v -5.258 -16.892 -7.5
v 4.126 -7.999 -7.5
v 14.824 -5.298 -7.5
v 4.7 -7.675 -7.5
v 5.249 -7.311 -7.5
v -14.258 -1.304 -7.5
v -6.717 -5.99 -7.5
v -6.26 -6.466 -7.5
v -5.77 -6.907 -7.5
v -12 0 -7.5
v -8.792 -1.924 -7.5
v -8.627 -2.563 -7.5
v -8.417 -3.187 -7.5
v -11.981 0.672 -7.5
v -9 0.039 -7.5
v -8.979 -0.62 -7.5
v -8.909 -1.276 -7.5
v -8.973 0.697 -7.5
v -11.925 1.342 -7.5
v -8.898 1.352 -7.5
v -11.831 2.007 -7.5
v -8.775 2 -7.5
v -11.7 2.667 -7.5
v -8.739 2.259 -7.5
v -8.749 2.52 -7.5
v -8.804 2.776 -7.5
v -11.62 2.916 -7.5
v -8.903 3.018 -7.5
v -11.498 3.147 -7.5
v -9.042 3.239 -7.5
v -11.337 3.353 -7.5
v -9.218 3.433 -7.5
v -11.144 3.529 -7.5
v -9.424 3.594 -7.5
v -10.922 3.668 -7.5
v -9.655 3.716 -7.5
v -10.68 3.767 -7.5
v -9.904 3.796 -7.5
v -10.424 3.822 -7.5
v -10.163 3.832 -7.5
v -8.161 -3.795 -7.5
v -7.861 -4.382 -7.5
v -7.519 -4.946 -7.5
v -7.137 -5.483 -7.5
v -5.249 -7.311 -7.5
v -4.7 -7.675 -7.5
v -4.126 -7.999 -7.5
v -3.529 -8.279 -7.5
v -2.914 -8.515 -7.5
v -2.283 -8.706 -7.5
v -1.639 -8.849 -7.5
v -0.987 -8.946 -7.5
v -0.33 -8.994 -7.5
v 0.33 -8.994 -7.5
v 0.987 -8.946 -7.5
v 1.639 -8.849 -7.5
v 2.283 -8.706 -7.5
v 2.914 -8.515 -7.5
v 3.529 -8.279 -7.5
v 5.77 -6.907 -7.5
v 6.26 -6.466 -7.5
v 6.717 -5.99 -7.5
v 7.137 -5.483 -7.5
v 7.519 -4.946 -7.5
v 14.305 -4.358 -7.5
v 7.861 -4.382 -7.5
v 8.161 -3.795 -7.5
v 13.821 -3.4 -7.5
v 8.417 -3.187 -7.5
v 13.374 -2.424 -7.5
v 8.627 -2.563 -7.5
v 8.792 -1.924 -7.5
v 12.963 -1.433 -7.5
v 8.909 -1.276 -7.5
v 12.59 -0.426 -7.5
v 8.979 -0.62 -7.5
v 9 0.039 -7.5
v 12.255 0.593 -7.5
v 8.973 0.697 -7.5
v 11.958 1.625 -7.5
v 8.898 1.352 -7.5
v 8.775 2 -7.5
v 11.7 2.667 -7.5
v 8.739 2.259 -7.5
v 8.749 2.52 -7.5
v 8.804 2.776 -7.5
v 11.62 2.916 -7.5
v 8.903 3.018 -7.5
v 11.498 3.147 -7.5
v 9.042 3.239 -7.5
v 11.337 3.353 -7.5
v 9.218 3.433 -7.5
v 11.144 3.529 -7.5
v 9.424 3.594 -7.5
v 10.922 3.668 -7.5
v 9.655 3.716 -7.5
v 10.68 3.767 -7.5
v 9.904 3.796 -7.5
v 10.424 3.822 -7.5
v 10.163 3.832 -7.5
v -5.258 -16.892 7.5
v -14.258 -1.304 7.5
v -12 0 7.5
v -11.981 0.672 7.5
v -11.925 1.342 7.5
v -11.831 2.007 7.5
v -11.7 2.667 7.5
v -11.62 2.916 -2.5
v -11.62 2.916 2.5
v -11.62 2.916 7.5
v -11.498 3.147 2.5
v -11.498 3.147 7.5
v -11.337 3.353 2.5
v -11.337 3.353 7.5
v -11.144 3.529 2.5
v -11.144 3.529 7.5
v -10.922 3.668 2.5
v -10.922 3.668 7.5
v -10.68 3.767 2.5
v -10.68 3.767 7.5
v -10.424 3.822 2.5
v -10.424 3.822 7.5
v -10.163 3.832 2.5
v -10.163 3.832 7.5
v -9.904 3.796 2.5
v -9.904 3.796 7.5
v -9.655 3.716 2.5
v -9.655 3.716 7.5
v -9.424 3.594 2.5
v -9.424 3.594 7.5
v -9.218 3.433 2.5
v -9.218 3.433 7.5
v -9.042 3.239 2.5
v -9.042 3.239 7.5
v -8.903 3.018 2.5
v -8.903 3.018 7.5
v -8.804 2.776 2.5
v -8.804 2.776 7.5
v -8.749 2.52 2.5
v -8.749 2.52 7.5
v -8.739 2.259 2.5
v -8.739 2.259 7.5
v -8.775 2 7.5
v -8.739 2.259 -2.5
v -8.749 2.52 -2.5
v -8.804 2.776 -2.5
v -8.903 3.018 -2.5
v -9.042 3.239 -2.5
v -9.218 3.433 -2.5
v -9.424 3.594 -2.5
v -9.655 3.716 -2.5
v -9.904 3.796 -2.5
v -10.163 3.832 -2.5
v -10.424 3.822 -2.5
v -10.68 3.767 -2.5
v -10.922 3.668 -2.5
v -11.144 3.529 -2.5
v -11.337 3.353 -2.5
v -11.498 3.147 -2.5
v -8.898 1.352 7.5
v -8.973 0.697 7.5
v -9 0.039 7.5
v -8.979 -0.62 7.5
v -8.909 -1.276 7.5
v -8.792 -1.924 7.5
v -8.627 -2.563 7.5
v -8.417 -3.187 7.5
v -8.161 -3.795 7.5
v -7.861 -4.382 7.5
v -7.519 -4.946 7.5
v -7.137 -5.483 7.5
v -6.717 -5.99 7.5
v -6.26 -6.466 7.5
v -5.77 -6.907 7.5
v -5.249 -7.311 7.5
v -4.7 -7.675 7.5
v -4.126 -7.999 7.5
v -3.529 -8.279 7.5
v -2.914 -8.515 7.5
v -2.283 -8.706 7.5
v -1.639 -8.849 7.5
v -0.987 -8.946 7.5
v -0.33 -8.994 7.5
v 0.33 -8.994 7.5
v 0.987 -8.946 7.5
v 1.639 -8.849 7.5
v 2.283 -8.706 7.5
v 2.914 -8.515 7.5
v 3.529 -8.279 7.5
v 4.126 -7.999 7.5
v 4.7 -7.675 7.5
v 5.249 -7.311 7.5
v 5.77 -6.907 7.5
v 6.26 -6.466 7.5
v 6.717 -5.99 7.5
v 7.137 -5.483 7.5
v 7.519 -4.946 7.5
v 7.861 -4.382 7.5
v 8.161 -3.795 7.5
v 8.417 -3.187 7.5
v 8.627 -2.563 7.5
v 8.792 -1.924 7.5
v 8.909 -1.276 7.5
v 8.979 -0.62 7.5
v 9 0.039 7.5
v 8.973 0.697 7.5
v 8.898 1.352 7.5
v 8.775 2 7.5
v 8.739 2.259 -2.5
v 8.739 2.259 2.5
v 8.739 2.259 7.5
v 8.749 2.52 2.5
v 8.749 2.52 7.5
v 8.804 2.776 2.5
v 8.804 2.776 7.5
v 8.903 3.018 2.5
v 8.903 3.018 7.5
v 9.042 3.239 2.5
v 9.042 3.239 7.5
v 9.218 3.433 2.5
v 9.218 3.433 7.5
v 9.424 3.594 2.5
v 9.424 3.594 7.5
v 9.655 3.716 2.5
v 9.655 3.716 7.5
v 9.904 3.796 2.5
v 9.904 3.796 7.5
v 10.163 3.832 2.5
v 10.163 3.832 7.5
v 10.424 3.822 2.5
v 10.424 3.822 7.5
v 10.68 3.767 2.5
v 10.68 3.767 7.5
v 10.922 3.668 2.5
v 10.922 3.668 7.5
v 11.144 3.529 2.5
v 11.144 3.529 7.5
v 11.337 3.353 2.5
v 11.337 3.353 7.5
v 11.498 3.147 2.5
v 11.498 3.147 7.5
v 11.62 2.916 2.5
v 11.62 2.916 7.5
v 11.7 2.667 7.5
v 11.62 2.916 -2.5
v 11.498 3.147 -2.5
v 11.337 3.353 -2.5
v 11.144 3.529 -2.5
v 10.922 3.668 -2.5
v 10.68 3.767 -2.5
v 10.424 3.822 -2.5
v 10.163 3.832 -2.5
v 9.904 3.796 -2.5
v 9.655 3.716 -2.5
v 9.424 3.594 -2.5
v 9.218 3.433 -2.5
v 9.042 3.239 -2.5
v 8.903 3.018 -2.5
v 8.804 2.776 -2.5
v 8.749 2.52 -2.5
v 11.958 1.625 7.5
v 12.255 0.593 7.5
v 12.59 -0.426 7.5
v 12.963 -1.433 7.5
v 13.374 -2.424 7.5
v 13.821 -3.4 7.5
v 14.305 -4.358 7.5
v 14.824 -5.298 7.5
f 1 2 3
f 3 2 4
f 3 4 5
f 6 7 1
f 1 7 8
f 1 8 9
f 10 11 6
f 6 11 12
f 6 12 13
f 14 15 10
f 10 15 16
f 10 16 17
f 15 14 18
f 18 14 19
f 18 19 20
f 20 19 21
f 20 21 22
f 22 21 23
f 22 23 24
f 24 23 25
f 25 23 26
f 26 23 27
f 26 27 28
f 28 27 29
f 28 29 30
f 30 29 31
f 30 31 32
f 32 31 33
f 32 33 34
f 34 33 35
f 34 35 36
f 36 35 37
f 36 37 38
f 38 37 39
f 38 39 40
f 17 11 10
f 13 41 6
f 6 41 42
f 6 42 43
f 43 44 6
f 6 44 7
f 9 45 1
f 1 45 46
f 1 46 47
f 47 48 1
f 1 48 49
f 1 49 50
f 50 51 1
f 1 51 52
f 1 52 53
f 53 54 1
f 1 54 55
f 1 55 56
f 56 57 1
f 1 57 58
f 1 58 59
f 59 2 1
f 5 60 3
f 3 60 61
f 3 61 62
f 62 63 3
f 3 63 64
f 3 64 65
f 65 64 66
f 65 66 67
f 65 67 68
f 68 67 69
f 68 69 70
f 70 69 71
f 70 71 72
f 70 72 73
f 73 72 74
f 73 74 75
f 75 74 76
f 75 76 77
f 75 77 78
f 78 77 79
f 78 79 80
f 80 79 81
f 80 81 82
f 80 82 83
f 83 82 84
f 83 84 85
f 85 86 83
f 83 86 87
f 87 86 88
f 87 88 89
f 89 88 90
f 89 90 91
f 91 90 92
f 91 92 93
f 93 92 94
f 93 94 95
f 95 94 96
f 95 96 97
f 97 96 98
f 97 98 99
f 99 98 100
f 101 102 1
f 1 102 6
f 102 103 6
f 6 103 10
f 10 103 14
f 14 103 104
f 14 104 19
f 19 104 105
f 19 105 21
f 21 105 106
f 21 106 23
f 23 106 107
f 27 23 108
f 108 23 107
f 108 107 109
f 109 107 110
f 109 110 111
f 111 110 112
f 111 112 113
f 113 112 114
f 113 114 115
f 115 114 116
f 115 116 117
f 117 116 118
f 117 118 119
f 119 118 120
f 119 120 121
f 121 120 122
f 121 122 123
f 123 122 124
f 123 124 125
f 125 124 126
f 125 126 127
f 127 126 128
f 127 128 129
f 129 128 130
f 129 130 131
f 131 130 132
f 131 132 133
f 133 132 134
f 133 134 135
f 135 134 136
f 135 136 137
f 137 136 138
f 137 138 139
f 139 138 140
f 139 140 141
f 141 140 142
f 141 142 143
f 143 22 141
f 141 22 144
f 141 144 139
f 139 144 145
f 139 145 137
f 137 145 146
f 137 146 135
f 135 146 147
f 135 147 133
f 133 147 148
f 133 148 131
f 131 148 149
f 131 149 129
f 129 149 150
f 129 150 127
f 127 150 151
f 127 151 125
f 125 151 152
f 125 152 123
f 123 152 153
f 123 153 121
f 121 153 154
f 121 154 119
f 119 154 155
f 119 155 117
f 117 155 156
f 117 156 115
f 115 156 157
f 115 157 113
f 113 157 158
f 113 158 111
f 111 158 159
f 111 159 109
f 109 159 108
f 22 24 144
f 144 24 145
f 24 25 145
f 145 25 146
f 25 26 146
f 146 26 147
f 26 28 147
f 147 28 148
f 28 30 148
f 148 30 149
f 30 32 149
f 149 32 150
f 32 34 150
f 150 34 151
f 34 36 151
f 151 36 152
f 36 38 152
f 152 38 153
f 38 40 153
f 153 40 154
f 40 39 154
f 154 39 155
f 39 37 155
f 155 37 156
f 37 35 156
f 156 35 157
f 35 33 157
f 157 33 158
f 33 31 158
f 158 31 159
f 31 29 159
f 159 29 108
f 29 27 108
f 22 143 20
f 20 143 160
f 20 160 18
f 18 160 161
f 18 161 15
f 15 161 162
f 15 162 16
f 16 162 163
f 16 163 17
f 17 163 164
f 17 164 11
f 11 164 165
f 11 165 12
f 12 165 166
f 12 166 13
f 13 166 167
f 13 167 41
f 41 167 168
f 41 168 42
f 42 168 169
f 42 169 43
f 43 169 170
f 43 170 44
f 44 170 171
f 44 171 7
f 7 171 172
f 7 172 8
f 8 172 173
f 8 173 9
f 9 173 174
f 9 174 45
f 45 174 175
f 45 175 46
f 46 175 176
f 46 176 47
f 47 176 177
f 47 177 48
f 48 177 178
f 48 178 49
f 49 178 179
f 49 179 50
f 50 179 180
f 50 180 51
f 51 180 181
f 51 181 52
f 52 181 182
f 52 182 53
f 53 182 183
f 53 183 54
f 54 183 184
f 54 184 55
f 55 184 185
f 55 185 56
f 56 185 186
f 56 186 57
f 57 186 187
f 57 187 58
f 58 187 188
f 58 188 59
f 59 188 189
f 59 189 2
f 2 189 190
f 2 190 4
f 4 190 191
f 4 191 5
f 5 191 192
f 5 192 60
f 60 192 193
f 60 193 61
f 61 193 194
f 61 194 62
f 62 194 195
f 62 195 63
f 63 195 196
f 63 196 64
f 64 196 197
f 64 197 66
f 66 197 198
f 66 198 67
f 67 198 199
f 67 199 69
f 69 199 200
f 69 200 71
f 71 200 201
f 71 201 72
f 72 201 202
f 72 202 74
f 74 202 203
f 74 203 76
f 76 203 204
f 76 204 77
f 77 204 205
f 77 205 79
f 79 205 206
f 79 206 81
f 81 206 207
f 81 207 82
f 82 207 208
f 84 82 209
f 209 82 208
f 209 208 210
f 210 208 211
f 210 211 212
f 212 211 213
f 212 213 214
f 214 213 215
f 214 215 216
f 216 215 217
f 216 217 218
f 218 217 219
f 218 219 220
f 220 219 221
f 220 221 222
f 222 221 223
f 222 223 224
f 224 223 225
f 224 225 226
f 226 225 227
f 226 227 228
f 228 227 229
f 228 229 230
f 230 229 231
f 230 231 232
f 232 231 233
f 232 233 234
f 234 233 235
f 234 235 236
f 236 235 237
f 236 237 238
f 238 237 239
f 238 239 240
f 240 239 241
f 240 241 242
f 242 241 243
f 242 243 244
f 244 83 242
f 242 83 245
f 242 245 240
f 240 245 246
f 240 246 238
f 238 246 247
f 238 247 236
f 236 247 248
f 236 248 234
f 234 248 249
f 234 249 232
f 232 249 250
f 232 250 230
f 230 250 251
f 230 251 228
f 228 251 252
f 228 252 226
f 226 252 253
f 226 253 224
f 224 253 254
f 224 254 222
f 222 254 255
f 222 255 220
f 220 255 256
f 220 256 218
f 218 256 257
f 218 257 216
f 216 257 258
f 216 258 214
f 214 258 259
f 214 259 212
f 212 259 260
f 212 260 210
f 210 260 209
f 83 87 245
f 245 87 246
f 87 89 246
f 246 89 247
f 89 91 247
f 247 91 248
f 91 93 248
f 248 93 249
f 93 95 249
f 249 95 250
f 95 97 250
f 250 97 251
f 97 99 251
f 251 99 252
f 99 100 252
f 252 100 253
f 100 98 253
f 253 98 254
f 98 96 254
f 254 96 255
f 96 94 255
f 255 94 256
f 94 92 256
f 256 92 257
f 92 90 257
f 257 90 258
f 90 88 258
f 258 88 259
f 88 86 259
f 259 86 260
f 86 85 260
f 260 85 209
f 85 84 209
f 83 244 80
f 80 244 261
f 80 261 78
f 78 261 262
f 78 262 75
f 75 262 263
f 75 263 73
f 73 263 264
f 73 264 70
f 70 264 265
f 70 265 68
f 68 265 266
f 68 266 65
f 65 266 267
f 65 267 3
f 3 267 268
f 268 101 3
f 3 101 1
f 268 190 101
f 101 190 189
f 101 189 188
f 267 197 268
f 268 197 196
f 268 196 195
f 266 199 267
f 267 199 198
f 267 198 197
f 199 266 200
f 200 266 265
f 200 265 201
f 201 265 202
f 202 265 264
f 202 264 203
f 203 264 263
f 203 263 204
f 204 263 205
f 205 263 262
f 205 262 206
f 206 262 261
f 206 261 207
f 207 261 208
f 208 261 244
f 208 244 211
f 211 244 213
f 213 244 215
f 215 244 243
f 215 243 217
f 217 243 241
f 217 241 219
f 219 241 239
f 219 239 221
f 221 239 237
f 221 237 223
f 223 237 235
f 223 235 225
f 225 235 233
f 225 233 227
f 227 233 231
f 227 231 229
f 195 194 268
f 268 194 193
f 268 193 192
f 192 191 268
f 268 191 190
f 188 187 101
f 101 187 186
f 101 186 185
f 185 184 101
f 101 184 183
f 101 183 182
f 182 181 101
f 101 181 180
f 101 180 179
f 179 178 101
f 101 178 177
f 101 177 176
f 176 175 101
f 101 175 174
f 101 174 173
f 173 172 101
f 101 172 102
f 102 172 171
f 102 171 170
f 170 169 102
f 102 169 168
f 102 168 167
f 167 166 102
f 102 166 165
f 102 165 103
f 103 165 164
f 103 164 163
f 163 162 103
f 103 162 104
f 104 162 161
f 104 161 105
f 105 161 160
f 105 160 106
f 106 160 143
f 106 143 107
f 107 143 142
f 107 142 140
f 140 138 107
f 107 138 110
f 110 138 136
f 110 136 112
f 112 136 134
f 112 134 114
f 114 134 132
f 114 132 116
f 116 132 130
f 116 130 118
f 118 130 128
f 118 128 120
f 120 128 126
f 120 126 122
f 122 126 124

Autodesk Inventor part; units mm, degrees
ref_plane "YZ Plane" through (0, 0, 0) normal (1, 0, 0) x (0, 1, 0)
ref_plane "XZ Plane" through (0, 0, 0) normal (0, 1, 0) x (-1, 0, 0)
ref_plane "XY Plane" through (0, 0, 0) normal (0, 0, 1) x (1, 0, 0)
sketch "Skizze1" plane through (0, 0, 0) normal (0, 0, 1) x (1, 0, 0)
  circle A0 centre (0, 0) radius 9
  circle A1 centre (0, 0) radius 12
  arc A2 (-8.775, 2) -> (-11.7, 2.6667) centre (-10.2375, 2.3333) ccw
  arc A3 (11.7, 2.6667) -> (8.775, 2) centre (10.2375, 2.3333) ccw
  line L0 (-12, 0) -> (-14.2583, -1.3038)
  line L1 (-14.2583, -1.3038) -> (-5.2583, -16.8923)
  line L2 (-5.2583, -16.8923) -> (6, -10.3923)
  line L3 (0, -22.6708) -> (0, 17.7785) projected
  line L4 (6, -10.3923) -> (14.8243, -5.2976)
  arc A4 (11.7, 2.6667) -> (14.8243, -5.2976) centre (39.6544, 9.0381) ccw
  dimension "d0" = 18
  dimension "d1" = 3
  dimension "d2" = 2
  dimension "d4" = 18
  dimension "d5" = 13
  dimension "d6" = 120
extrude "Extrusion1" add sketch "Skizze1" along normal mid plane 15 contours A0 A3 A1 L3 | L3 A1 A2 A0 | A4 L4 A1 | L3 L2 L1 L0 A1 | A1 L2 L3 picked at (10.9126, -0.8316) picked at (-1.5575, -10.8245)
properties part number "baztholder_3D-Druck"
